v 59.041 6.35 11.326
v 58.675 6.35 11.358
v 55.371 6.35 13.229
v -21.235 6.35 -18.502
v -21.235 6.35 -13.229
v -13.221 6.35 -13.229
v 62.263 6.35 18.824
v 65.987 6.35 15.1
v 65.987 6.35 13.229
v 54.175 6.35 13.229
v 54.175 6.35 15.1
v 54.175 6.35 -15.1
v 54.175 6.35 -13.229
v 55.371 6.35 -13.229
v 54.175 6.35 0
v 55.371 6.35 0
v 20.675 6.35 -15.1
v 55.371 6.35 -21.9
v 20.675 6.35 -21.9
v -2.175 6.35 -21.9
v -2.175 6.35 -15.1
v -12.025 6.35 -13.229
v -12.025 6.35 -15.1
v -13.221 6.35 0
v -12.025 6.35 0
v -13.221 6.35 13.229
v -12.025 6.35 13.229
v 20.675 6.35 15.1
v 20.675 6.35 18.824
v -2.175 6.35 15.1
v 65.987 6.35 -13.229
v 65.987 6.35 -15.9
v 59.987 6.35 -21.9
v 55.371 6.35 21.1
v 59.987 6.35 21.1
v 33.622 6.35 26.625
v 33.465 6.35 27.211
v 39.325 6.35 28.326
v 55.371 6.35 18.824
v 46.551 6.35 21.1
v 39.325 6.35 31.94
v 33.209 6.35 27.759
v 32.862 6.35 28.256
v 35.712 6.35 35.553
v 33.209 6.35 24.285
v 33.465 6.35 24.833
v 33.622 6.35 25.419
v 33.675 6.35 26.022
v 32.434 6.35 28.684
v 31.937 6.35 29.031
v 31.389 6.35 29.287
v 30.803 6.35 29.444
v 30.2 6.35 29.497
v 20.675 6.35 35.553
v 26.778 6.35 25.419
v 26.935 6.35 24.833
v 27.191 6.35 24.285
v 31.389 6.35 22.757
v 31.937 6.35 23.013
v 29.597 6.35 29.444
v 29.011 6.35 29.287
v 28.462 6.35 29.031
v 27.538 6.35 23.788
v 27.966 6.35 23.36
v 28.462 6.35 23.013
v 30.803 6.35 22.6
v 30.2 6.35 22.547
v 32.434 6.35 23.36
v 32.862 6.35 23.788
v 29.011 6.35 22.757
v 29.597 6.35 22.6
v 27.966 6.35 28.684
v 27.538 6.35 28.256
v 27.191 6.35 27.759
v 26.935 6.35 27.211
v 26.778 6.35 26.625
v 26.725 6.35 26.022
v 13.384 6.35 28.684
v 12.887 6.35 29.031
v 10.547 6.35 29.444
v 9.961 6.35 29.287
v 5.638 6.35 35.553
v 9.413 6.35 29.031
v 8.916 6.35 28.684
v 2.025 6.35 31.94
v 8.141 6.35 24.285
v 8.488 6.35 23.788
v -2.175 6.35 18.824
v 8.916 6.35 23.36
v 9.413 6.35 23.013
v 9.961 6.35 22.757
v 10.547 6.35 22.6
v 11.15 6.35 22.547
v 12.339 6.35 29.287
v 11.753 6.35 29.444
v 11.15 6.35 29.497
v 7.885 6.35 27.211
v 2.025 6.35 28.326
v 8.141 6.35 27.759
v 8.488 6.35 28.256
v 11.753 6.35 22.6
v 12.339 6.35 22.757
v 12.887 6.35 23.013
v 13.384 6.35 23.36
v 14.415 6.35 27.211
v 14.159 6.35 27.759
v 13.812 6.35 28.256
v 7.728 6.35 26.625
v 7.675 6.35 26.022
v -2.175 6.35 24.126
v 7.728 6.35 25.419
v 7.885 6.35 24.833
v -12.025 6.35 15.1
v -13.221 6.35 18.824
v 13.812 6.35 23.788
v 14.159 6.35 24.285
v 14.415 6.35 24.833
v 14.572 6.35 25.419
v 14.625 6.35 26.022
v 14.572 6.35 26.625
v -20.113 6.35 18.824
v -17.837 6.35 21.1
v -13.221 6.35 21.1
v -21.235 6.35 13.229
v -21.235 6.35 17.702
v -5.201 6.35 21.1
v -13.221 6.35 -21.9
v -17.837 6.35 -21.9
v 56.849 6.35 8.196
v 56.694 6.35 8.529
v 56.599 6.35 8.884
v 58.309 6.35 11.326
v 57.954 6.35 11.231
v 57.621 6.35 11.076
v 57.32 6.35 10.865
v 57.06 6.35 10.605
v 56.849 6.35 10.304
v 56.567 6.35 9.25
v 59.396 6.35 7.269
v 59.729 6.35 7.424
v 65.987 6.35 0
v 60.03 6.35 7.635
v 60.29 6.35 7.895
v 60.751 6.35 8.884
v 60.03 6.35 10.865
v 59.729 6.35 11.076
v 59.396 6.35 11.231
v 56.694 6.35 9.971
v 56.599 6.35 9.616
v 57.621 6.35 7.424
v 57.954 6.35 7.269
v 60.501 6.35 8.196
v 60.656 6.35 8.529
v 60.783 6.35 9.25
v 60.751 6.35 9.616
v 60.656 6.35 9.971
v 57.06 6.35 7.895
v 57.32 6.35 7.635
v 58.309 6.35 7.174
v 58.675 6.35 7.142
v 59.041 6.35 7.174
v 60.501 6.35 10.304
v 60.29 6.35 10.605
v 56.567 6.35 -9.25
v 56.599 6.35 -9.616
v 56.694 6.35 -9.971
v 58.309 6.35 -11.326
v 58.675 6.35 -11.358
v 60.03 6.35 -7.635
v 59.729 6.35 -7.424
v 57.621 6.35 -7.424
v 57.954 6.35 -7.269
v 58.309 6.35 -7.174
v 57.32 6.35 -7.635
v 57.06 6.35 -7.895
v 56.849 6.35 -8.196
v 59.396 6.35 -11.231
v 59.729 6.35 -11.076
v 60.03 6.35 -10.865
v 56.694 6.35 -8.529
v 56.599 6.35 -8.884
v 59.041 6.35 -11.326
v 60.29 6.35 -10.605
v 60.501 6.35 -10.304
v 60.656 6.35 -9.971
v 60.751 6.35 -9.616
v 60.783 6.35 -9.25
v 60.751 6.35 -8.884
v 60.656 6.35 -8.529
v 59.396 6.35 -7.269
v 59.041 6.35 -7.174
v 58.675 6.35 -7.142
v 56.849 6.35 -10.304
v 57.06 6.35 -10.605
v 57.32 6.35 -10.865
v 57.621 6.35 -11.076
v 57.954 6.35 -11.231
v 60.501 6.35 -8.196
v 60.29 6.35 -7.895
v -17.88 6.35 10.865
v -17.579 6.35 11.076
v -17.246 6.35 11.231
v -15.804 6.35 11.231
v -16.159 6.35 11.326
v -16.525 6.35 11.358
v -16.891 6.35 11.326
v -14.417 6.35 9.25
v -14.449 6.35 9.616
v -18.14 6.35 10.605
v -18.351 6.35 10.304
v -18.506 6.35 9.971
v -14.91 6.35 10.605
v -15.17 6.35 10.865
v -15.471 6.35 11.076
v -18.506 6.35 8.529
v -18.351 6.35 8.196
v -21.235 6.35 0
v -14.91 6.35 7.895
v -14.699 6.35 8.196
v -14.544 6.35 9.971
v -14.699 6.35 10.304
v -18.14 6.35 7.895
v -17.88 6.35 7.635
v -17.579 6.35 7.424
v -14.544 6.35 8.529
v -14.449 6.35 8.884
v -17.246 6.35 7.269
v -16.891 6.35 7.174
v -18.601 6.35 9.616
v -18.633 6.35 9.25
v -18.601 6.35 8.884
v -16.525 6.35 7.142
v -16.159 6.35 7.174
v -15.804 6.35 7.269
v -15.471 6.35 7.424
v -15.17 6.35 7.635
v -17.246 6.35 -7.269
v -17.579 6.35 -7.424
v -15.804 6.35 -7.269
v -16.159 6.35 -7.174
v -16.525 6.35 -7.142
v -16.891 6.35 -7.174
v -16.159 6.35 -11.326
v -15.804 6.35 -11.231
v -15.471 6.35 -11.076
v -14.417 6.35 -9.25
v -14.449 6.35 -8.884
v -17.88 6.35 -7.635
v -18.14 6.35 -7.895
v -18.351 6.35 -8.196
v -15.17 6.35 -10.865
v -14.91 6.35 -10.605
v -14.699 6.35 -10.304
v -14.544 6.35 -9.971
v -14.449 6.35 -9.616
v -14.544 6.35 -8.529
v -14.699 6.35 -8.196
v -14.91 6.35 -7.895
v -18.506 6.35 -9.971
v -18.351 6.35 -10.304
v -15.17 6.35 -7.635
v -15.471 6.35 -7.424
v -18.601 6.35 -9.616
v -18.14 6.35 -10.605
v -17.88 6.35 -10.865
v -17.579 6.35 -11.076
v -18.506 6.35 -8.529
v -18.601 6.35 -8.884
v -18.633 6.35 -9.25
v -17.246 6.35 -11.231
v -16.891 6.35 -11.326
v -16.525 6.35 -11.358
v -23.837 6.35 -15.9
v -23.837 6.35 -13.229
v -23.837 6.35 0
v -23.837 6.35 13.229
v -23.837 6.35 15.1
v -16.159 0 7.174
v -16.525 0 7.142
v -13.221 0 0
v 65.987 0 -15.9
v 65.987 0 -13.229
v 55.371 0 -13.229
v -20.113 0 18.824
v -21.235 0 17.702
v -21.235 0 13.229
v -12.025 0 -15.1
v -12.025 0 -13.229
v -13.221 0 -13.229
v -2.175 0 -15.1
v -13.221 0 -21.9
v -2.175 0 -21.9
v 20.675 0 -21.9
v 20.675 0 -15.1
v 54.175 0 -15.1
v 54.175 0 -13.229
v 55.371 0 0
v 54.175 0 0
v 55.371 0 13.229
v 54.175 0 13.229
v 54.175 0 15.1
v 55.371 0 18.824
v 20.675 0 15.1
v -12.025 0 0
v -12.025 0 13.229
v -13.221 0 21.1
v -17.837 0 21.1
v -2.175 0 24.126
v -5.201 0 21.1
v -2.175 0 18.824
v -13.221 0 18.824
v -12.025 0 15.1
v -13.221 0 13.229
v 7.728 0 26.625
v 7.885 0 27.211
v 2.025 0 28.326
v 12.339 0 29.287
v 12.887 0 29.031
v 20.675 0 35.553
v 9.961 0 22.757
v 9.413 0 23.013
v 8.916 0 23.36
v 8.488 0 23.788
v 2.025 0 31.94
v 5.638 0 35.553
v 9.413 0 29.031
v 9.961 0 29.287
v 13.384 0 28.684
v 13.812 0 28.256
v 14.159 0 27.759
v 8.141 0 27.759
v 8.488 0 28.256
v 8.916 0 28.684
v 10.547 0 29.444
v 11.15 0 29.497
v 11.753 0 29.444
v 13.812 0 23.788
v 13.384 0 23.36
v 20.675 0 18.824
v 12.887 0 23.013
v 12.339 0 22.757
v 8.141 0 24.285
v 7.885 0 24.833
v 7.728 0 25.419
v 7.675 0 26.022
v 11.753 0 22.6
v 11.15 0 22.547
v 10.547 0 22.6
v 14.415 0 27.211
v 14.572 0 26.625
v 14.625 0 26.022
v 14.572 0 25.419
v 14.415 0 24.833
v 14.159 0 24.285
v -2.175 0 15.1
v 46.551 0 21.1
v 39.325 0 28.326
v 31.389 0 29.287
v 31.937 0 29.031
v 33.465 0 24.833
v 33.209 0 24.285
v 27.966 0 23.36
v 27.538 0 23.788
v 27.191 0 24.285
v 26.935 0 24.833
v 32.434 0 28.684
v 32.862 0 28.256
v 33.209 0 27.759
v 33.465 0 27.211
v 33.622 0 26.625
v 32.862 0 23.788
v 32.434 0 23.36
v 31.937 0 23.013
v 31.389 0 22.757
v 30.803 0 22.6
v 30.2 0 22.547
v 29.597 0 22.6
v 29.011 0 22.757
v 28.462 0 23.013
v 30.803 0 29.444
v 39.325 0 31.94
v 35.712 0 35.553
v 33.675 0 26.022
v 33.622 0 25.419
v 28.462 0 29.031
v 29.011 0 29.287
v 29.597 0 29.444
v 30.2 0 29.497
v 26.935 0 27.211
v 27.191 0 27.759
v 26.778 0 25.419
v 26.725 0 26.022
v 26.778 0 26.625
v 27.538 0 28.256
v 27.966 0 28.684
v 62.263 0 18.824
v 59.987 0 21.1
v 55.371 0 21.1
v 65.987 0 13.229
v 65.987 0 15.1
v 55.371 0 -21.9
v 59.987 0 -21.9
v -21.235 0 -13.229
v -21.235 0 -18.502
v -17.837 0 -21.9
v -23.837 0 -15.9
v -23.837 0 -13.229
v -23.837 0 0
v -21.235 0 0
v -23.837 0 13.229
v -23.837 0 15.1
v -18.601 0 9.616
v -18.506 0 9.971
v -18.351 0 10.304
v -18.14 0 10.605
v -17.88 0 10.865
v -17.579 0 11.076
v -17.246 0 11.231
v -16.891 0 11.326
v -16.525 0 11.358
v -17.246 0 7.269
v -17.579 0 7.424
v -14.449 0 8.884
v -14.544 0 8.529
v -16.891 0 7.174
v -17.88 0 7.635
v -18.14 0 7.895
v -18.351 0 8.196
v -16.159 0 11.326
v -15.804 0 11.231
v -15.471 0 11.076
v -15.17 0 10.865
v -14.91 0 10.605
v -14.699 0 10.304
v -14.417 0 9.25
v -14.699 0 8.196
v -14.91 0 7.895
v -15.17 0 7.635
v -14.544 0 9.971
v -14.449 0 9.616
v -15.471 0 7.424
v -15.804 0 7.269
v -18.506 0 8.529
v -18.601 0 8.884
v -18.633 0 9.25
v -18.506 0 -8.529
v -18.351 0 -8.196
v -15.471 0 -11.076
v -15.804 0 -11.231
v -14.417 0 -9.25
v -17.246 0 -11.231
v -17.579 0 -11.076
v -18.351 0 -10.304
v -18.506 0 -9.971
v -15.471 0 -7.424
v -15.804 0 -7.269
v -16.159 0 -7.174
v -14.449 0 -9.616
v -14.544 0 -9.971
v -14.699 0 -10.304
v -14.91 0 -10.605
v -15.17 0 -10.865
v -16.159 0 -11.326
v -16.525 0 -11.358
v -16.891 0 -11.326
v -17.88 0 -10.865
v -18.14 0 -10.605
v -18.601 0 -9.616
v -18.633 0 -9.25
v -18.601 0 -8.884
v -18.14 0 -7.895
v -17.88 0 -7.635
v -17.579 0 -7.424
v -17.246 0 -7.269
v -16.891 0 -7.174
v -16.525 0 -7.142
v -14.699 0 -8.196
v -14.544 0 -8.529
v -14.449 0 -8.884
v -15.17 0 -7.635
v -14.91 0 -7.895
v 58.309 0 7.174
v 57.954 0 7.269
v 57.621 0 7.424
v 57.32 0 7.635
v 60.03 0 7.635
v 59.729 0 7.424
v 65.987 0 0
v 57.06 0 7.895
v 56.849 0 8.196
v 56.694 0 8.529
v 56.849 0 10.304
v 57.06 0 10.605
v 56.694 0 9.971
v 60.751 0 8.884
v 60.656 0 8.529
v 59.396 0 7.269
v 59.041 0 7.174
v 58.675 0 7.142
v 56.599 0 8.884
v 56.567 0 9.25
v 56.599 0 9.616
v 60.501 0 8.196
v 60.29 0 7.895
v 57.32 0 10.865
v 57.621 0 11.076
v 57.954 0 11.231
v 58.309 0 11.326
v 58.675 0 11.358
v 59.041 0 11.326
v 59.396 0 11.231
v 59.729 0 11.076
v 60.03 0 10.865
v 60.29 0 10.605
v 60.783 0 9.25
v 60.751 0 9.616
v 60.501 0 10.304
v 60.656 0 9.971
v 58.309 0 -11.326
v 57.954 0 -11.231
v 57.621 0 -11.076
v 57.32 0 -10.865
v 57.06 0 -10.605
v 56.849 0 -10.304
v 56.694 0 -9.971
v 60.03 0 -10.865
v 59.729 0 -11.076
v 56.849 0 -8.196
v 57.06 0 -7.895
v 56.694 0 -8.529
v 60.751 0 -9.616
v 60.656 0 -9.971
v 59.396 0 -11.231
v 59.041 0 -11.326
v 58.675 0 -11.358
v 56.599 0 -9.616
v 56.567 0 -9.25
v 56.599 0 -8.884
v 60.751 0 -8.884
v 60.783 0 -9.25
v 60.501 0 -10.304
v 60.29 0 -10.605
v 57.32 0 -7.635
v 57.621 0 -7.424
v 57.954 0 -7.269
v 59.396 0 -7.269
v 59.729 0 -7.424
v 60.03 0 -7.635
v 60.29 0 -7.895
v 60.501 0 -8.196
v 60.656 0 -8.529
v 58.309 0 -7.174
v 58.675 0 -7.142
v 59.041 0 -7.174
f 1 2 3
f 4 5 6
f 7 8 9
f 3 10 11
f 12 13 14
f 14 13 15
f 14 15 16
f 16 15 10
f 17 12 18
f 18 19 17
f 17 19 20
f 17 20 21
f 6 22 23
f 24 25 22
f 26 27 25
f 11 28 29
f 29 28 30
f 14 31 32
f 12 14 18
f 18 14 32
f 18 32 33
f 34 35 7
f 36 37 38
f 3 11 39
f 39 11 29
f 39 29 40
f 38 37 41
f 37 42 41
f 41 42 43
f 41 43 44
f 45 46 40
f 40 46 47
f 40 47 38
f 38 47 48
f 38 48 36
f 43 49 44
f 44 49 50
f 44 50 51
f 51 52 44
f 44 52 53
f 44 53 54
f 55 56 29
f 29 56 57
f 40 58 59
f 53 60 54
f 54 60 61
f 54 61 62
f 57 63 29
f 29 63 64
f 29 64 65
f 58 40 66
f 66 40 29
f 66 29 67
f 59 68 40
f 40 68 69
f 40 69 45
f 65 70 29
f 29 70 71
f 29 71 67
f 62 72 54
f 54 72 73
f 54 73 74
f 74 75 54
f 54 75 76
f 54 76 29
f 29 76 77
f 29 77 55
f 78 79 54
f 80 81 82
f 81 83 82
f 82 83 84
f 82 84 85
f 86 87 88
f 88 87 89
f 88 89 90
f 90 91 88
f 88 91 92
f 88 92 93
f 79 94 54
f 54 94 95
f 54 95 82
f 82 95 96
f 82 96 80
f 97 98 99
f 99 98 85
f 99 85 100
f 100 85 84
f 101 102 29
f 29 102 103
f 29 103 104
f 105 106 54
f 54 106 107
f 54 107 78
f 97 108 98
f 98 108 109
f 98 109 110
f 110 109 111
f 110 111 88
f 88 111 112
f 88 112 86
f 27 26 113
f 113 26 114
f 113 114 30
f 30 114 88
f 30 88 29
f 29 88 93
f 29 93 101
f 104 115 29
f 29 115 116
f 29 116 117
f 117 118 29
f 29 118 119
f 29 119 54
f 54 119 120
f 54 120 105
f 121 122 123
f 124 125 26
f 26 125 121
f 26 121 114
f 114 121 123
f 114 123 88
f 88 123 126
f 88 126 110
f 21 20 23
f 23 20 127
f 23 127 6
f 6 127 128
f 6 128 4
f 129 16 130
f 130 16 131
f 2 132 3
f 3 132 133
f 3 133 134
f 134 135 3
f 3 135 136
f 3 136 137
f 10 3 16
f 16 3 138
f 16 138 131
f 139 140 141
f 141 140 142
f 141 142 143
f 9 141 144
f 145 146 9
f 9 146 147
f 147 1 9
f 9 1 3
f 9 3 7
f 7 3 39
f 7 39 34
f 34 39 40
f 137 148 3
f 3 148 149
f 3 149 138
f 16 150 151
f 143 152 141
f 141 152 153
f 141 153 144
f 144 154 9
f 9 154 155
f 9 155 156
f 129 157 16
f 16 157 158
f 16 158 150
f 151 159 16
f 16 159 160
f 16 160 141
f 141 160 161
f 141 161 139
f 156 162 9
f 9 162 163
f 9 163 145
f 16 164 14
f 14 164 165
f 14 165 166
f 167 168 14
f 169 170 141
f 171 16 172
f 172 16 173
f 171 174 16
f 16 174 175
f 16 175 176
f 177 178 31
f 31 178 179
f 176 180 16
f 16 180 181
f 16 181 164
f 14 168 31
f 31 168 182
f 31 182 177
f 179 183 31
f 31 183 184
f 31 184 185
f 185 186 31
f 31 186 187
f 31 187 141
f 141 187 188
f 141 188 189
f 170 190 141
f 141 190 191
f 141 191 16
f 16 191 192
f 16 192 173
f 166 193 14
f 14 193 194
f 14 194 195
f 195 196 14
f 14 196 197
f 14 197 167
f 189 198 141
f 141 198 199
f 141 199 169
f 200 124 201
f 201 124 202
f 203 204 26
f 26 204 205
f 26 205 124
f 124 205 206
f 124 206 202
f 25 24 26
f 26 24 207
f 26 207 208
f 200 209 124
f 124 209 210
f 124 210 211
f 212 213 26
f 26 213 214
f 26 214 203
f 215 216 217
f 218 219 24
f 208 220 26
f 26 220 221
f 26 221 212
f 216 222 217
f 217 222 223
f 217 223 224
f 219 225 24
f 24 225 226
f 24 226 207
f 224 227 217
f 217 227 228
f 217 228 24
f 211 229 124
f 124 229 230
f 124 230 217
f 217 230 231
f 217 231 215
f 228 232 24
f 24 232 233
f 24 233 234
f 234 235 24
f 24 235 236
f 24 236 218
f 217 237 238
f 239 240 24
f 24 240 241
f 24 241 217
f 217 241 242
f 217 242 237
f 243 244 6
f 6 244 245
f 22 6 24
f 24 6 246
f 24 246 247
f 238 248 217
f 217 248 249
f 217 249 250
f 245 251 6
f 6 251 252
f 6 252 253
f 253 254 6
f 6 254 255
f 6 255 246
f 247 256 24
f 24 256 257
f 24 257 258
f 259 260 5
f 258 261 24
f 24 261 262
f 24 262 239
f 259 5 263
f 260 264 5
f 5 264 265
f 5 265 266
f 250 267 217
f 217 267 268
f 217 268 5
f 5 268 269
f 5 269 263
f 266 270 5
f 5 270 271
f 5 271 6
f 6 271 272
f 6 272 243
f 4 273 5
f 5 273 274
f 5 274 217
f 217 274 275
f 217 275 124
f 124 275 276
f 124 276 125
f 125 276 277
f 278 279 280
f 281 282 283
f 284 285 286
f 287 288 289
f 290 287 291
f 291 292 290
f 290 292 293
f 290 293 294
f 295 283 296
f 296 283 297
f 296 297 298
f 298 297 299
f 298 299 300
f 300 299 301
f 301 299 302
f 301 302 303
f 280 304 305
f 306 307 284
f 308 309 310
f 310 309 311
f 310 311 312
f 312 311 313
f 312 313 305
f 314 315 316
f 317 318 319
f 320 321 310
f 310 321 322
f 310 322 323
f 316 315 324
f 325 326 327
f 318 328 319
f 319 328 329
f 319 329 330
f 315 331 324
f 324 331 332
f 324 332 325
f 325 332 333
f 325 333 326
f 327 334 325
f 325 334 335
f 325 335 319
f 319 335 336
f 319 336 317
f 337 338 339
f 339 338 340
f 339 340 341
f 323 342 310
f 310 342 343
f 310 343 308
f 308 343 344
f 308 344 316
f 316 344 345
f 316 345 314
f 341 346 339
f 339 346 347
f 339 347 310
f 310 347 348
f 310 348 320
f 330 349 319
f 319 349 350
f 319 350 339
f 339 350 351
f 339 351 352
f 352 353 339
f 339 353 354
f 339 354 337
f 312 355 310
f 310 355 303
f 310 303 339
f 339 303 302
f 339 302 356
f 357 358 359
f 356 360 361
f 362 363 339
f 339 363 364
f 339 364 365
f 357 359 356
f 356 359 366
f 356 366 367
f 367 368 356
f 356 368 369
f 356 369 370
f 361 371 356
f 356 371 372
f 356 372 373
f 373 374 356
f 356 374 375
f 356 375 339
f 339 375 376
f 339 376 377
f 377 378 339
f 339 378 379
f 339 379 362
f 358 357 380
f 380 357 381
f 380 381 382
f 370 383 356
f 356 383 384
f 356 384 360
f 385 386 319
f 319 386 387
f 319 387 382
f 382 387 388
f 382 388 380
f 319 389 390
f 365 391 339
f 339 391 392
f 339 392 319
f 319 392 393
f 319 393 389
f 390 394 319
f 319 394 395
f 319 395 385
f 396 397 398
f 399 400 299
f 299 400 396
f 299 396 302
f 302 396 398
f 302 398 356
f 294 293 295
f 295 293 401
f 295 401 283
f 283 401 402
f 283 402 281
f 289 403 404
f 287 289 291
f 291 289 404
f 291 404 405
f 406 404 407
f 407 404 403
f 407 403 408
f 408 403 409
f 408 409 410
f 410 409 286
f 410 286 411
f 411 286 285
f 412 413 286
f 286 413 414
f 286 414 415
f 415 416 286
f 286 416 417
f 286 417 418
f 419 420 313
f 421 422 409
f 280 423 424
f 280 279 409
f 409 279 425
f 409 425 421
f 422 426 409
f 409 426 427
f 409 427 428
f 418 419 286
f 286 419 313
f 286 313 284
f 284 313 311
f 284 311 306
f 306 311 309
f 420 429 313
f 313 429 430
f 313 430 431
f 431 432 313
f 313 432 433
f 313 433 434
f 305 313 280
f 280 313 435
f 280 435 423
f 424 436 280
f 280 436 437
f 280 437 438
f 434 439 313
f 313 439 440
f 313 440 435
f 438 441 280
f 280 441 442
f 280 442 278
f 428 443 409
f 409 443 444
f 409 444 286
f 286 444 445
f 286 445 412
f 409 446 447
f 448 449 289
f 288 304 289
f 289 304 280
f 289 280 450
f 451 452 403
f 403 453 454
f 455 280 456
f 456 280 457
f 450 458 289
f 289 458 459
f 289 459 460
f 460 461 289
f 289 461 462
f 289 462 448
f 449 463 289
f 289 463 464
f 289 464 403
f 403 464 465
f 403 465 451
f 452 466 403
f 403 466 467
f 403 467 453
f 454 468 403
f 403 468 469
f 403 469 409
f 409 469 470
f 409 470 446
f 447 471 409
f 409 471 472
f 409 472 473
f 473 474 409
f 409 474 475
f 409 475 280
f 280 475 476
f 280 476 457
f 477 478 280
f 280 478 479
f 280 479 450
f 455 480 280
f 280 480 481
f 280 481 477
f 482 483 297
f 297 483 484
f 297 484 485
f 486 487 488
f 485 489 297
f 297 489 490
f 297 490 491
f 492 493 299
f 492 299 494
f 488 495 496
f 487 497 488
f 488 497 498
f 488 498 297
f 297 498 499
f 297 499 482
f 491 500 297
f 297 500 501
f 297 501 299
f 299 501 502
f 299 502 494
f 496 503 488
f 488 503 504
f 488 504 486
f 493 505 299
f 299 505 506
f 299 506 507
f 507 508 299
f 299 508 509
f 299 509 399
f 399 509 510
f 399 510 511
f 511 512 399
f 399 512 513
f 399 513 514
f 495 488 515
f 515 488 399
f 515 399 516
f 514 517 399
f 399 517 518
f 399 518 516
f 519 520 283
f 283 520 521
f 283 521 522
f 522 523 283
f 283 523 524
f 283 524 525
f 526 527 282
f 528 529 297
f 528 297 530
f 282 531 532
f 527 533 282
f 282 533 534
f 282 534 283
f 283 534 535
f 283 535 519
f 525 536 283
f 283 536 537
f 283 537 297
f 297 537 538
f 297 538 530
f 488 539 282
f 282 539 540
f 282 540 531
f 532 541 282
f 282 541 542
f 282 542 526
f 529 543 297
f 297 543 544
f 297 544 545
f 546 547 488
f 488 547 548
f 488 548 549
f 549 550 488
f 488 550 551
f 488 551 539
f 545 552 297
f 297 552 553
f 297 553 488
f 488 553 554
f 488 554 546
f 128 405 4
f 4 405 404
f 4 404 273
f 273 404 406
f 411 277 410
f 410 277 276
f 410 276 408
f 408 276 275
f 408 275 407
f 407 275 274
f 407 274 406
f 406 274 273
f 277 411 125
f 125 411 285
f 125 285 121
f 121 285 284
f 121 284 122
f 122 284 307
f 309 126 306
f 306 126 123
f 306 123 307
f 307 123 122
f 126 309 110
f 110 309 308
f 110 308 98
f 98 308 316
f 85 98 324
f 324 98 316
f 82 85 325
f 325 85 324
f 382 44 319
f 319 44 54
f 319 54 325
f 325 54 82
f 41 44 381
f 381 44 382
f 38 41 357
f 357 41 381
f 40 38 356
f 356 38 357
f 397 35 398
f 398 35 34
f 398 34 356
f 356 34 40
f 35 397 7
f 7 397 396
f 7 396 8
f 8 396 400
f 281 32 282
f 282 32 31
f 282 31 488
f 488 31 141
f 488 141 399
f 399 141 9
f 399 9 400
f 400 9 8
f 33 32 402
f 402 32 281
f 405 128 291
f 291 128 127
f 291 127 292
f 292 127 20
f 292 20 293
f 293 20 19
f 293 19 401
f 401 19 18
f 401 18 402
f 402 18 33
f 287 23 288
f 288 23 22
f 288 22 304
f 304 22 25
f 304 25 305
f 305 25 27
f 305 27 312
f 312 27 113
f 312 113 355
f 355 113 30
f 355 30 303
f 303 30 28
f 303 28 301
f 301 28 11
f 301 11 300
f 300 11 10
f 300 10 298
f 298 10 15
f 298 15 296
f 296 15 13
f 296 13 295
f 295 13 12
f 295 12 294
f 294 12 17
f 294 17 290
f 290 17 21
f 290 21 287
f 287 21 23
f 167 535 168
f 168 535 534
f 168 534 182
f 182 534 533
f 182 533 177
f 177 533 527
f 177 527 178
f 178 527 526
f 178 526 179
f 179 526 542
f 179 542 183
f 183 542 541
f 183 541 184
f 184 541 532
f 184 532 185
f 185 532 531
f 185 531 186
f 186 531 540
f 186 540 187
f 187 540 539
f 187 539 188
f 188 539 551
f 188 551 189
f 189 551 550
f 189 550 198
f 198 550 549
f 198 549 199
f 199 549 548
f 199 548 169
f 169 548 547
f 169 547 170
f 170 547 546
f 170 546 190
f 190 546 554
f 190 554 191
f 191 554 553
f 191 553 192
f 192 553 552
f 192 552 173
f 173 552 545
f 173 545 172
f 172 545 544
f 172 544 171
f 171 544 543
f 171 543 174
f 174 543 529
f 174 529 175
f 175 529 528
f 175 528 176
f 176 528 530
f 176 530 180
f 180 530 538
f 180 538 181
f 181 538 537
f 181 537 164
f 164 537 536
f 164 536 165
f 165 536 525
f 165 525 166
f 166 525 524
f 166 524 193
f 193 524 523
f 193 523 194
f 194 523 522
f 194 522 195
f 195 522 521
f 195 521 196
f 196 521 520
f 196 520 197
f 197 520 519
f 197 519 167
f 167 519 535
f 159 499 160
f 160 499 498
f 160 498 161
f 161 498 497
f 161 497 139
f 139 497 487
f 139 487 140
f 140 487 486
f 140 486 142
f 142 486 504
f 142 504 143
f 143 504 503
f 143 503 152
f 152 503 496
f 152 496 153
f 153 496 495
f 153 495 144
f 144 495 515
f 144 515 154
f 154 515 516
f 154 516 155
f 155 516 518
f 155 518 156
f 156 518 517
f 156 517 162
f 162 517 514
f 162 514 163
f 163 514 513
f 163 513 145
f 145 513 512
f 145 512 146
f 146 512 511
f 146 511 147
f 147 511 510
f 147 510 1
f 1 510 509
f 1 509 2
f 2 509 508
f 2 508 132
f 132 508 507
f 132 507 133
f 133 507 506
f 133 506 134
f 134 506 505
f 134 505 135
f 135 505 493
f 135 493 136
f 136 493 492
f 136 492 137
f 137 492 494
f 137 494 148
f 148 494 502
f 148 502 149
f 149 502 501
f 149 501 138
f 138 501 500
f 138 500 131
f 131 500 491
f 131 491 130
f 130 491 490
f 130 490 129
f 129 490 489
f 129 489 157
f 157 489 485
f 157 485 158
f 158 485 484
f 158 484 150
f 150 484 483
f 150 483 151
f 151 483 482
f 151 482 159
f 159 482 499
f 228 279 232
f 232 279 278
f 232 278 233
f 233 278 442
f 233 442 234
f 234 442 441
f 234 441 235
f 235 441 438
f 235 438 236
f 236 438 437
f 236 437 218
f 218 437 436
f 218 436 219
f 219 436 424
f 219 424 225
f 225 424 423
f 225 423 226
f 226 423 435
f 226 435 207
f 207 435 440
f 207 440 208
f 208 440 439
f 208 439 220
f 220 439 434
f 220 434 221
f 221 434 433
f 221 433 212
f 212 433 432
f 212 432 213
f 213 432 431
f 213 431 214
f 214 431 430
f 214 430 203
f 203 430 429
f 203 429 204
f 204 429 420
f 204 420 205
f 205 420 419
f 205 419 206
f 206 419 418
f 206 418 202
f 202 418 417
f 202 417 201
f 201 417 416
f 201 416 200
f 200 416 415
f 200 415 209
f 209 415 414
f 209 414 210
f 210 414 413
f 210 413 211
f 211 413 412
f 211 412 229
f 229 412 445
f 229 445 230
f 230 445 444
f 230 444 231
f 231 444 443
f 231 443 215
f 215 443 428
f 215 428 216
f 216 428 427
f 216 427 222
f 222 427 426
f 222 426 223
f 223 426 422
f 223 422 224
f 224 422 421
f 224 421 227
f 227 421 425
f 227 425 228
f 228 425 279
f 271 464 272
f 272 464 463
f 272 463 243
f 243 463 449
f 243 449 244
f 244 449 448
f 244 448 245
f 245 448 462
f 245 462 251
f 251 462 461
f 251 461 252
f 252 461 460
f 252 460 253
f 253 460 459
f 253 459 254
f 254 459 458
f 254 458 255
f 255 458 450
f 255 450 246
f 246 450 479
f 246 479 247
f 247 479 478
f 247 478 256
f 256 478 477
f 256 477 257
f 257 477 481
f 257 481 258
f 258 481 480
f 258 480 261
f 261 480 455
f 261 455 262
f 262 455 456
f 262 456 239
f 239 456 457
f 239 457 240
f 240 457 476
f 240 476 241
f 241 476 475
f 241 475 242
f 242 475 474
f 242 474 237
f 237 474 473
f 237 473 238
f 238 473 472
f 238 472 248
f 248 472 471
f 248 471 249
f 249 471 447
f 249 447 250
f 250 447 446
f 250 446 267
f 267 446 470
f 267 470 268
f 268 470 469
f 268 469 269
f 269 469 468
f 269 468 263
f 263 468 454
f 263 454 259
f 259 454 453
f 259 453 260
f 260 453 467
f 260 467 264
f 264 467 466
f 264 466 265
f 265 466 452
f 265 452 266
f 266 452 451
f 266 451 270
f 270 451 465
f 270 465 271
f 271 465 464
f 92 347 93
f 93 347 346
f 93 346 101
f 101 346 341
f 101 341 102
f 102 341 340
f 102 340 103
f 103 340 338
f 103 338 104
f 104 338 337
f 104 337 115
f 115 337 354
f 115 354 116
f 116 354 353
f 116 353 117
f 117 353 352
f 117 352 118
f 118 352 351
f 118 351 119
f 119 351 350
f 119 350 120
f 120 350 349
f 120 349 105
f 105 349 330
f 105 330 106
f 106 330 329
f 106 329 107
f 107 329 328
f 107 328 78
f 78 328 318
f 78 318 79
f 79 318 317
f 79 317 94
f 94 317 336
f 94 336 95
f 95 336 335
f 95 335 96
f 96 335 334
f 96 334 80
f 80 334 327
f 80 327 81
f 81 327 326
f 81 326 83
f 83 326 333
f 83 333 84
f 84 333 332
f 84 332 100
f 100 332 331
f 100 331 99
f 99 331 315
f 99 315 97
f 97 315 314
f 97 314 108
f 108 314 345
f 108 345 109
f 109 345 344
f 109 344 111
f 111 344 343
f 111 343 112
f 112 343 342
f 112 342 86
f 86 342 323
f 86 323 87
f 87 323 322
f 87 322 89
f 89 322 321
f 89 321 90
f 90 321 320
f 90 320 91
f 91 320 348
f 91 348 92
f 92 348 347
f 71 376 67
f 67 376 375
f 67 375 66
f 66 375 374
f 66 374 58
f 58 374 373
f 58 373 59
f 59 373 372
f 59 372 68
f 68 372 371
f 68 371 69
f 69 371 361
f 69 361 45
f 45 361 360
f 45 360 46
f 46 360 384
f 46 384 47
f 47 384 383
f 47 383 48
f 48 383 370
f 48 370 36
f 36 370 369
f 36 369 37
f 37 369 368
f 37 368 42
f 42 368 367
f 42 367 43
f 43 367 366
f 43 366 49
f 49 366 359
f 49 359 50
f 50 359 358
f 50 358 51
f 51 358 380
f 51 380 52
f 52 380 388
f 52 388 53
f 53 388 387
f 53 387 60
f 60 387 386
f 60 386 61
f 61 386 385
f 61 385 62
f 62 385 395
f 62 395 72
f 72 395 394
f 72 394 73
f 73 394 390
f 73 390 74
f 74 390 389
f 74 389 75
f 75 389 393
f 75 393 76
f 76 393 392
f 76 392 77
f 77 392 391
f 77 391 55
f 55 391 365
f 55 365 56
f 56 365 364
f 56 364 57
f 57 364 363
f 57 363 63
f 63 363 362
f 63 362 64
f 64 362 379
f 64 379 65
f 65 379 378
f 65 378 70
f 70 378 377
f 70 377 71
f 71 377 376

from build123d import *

# Parameters (mm, degrees)
SKETCH1_R           = 2.1082
SKETCH1_R_2         = 3.475
SKETCH1_W           = 66.2
SKETCH1_H           = 30.2
BOSS_EXTRUDE1_DEPTH = 6.35


with BuildPart() as part:
    # Sketch1 → Boss-Extrude1 (new body)
    with BuildSketch(Plane(origin=(0, 0, 0), x_dir=(1, 0, 0), z_dir=(0, 1, 0))):
        Polygon((59.986534985, 21.9), (-17.836534985, 21.9), (-23.836534985, 15.9), (-23.836534985, -15.1), (-17.836534985, -21.1), (-5.201359875, -21.1), (2.025, -28.326359875), (2.025, -31.939539813), (5.638179938, -35.55271975), (35.711820062, -35.55271975), (39.325, -31.939539813), (39.325, -28.326359875), (46.551359875, -21.1), (59.986534985, -21.1), (65.986534985, -15.1), (65.986534985, 15.9), align=None)
        with Locations(Location((58.675, 9.25, 0), (0, 0, 270))):
            Circle(SKETCH1_R, mode=Mode.SUBTRACT)
        with Locations(Location((58.675, -9.25, 0), (0, 0, 90))):
            Circle(SKETCH1_R, mode=Mode.SUBTRACT)
        with Locations(Location((-16.525, -9.25, 0), (0, 0, 270))):
            Circle(SKETCH1_R, mode=Mode.SUBTRACT)
        with Locations(Location((-16.525, 9.25, 0), (0, 0, 90))):
            Circle(SKETCH1_R, mode=Mode.SUBTRACT)
        with Locations(Location((11.15, -26.022, 0), (0, 0, 270))):
            Circle(SKETCH1_R_2, mode=Mode.SUBTRACT)
        with Locations(Location((30.2, -26.022, 0), (0, 0, 90))):
            Circle(SKETCH1_R_2, mode=Mode.SUBTRACT)
        with Locations((21.075, 0)):
            Rectangle(SKETCH1_W, SKETCH1_H, mode=Mode.SUBTRACT)
    extrude(amount=BOSS_EXTRUDE1_DEPTH)


solid = part.part
